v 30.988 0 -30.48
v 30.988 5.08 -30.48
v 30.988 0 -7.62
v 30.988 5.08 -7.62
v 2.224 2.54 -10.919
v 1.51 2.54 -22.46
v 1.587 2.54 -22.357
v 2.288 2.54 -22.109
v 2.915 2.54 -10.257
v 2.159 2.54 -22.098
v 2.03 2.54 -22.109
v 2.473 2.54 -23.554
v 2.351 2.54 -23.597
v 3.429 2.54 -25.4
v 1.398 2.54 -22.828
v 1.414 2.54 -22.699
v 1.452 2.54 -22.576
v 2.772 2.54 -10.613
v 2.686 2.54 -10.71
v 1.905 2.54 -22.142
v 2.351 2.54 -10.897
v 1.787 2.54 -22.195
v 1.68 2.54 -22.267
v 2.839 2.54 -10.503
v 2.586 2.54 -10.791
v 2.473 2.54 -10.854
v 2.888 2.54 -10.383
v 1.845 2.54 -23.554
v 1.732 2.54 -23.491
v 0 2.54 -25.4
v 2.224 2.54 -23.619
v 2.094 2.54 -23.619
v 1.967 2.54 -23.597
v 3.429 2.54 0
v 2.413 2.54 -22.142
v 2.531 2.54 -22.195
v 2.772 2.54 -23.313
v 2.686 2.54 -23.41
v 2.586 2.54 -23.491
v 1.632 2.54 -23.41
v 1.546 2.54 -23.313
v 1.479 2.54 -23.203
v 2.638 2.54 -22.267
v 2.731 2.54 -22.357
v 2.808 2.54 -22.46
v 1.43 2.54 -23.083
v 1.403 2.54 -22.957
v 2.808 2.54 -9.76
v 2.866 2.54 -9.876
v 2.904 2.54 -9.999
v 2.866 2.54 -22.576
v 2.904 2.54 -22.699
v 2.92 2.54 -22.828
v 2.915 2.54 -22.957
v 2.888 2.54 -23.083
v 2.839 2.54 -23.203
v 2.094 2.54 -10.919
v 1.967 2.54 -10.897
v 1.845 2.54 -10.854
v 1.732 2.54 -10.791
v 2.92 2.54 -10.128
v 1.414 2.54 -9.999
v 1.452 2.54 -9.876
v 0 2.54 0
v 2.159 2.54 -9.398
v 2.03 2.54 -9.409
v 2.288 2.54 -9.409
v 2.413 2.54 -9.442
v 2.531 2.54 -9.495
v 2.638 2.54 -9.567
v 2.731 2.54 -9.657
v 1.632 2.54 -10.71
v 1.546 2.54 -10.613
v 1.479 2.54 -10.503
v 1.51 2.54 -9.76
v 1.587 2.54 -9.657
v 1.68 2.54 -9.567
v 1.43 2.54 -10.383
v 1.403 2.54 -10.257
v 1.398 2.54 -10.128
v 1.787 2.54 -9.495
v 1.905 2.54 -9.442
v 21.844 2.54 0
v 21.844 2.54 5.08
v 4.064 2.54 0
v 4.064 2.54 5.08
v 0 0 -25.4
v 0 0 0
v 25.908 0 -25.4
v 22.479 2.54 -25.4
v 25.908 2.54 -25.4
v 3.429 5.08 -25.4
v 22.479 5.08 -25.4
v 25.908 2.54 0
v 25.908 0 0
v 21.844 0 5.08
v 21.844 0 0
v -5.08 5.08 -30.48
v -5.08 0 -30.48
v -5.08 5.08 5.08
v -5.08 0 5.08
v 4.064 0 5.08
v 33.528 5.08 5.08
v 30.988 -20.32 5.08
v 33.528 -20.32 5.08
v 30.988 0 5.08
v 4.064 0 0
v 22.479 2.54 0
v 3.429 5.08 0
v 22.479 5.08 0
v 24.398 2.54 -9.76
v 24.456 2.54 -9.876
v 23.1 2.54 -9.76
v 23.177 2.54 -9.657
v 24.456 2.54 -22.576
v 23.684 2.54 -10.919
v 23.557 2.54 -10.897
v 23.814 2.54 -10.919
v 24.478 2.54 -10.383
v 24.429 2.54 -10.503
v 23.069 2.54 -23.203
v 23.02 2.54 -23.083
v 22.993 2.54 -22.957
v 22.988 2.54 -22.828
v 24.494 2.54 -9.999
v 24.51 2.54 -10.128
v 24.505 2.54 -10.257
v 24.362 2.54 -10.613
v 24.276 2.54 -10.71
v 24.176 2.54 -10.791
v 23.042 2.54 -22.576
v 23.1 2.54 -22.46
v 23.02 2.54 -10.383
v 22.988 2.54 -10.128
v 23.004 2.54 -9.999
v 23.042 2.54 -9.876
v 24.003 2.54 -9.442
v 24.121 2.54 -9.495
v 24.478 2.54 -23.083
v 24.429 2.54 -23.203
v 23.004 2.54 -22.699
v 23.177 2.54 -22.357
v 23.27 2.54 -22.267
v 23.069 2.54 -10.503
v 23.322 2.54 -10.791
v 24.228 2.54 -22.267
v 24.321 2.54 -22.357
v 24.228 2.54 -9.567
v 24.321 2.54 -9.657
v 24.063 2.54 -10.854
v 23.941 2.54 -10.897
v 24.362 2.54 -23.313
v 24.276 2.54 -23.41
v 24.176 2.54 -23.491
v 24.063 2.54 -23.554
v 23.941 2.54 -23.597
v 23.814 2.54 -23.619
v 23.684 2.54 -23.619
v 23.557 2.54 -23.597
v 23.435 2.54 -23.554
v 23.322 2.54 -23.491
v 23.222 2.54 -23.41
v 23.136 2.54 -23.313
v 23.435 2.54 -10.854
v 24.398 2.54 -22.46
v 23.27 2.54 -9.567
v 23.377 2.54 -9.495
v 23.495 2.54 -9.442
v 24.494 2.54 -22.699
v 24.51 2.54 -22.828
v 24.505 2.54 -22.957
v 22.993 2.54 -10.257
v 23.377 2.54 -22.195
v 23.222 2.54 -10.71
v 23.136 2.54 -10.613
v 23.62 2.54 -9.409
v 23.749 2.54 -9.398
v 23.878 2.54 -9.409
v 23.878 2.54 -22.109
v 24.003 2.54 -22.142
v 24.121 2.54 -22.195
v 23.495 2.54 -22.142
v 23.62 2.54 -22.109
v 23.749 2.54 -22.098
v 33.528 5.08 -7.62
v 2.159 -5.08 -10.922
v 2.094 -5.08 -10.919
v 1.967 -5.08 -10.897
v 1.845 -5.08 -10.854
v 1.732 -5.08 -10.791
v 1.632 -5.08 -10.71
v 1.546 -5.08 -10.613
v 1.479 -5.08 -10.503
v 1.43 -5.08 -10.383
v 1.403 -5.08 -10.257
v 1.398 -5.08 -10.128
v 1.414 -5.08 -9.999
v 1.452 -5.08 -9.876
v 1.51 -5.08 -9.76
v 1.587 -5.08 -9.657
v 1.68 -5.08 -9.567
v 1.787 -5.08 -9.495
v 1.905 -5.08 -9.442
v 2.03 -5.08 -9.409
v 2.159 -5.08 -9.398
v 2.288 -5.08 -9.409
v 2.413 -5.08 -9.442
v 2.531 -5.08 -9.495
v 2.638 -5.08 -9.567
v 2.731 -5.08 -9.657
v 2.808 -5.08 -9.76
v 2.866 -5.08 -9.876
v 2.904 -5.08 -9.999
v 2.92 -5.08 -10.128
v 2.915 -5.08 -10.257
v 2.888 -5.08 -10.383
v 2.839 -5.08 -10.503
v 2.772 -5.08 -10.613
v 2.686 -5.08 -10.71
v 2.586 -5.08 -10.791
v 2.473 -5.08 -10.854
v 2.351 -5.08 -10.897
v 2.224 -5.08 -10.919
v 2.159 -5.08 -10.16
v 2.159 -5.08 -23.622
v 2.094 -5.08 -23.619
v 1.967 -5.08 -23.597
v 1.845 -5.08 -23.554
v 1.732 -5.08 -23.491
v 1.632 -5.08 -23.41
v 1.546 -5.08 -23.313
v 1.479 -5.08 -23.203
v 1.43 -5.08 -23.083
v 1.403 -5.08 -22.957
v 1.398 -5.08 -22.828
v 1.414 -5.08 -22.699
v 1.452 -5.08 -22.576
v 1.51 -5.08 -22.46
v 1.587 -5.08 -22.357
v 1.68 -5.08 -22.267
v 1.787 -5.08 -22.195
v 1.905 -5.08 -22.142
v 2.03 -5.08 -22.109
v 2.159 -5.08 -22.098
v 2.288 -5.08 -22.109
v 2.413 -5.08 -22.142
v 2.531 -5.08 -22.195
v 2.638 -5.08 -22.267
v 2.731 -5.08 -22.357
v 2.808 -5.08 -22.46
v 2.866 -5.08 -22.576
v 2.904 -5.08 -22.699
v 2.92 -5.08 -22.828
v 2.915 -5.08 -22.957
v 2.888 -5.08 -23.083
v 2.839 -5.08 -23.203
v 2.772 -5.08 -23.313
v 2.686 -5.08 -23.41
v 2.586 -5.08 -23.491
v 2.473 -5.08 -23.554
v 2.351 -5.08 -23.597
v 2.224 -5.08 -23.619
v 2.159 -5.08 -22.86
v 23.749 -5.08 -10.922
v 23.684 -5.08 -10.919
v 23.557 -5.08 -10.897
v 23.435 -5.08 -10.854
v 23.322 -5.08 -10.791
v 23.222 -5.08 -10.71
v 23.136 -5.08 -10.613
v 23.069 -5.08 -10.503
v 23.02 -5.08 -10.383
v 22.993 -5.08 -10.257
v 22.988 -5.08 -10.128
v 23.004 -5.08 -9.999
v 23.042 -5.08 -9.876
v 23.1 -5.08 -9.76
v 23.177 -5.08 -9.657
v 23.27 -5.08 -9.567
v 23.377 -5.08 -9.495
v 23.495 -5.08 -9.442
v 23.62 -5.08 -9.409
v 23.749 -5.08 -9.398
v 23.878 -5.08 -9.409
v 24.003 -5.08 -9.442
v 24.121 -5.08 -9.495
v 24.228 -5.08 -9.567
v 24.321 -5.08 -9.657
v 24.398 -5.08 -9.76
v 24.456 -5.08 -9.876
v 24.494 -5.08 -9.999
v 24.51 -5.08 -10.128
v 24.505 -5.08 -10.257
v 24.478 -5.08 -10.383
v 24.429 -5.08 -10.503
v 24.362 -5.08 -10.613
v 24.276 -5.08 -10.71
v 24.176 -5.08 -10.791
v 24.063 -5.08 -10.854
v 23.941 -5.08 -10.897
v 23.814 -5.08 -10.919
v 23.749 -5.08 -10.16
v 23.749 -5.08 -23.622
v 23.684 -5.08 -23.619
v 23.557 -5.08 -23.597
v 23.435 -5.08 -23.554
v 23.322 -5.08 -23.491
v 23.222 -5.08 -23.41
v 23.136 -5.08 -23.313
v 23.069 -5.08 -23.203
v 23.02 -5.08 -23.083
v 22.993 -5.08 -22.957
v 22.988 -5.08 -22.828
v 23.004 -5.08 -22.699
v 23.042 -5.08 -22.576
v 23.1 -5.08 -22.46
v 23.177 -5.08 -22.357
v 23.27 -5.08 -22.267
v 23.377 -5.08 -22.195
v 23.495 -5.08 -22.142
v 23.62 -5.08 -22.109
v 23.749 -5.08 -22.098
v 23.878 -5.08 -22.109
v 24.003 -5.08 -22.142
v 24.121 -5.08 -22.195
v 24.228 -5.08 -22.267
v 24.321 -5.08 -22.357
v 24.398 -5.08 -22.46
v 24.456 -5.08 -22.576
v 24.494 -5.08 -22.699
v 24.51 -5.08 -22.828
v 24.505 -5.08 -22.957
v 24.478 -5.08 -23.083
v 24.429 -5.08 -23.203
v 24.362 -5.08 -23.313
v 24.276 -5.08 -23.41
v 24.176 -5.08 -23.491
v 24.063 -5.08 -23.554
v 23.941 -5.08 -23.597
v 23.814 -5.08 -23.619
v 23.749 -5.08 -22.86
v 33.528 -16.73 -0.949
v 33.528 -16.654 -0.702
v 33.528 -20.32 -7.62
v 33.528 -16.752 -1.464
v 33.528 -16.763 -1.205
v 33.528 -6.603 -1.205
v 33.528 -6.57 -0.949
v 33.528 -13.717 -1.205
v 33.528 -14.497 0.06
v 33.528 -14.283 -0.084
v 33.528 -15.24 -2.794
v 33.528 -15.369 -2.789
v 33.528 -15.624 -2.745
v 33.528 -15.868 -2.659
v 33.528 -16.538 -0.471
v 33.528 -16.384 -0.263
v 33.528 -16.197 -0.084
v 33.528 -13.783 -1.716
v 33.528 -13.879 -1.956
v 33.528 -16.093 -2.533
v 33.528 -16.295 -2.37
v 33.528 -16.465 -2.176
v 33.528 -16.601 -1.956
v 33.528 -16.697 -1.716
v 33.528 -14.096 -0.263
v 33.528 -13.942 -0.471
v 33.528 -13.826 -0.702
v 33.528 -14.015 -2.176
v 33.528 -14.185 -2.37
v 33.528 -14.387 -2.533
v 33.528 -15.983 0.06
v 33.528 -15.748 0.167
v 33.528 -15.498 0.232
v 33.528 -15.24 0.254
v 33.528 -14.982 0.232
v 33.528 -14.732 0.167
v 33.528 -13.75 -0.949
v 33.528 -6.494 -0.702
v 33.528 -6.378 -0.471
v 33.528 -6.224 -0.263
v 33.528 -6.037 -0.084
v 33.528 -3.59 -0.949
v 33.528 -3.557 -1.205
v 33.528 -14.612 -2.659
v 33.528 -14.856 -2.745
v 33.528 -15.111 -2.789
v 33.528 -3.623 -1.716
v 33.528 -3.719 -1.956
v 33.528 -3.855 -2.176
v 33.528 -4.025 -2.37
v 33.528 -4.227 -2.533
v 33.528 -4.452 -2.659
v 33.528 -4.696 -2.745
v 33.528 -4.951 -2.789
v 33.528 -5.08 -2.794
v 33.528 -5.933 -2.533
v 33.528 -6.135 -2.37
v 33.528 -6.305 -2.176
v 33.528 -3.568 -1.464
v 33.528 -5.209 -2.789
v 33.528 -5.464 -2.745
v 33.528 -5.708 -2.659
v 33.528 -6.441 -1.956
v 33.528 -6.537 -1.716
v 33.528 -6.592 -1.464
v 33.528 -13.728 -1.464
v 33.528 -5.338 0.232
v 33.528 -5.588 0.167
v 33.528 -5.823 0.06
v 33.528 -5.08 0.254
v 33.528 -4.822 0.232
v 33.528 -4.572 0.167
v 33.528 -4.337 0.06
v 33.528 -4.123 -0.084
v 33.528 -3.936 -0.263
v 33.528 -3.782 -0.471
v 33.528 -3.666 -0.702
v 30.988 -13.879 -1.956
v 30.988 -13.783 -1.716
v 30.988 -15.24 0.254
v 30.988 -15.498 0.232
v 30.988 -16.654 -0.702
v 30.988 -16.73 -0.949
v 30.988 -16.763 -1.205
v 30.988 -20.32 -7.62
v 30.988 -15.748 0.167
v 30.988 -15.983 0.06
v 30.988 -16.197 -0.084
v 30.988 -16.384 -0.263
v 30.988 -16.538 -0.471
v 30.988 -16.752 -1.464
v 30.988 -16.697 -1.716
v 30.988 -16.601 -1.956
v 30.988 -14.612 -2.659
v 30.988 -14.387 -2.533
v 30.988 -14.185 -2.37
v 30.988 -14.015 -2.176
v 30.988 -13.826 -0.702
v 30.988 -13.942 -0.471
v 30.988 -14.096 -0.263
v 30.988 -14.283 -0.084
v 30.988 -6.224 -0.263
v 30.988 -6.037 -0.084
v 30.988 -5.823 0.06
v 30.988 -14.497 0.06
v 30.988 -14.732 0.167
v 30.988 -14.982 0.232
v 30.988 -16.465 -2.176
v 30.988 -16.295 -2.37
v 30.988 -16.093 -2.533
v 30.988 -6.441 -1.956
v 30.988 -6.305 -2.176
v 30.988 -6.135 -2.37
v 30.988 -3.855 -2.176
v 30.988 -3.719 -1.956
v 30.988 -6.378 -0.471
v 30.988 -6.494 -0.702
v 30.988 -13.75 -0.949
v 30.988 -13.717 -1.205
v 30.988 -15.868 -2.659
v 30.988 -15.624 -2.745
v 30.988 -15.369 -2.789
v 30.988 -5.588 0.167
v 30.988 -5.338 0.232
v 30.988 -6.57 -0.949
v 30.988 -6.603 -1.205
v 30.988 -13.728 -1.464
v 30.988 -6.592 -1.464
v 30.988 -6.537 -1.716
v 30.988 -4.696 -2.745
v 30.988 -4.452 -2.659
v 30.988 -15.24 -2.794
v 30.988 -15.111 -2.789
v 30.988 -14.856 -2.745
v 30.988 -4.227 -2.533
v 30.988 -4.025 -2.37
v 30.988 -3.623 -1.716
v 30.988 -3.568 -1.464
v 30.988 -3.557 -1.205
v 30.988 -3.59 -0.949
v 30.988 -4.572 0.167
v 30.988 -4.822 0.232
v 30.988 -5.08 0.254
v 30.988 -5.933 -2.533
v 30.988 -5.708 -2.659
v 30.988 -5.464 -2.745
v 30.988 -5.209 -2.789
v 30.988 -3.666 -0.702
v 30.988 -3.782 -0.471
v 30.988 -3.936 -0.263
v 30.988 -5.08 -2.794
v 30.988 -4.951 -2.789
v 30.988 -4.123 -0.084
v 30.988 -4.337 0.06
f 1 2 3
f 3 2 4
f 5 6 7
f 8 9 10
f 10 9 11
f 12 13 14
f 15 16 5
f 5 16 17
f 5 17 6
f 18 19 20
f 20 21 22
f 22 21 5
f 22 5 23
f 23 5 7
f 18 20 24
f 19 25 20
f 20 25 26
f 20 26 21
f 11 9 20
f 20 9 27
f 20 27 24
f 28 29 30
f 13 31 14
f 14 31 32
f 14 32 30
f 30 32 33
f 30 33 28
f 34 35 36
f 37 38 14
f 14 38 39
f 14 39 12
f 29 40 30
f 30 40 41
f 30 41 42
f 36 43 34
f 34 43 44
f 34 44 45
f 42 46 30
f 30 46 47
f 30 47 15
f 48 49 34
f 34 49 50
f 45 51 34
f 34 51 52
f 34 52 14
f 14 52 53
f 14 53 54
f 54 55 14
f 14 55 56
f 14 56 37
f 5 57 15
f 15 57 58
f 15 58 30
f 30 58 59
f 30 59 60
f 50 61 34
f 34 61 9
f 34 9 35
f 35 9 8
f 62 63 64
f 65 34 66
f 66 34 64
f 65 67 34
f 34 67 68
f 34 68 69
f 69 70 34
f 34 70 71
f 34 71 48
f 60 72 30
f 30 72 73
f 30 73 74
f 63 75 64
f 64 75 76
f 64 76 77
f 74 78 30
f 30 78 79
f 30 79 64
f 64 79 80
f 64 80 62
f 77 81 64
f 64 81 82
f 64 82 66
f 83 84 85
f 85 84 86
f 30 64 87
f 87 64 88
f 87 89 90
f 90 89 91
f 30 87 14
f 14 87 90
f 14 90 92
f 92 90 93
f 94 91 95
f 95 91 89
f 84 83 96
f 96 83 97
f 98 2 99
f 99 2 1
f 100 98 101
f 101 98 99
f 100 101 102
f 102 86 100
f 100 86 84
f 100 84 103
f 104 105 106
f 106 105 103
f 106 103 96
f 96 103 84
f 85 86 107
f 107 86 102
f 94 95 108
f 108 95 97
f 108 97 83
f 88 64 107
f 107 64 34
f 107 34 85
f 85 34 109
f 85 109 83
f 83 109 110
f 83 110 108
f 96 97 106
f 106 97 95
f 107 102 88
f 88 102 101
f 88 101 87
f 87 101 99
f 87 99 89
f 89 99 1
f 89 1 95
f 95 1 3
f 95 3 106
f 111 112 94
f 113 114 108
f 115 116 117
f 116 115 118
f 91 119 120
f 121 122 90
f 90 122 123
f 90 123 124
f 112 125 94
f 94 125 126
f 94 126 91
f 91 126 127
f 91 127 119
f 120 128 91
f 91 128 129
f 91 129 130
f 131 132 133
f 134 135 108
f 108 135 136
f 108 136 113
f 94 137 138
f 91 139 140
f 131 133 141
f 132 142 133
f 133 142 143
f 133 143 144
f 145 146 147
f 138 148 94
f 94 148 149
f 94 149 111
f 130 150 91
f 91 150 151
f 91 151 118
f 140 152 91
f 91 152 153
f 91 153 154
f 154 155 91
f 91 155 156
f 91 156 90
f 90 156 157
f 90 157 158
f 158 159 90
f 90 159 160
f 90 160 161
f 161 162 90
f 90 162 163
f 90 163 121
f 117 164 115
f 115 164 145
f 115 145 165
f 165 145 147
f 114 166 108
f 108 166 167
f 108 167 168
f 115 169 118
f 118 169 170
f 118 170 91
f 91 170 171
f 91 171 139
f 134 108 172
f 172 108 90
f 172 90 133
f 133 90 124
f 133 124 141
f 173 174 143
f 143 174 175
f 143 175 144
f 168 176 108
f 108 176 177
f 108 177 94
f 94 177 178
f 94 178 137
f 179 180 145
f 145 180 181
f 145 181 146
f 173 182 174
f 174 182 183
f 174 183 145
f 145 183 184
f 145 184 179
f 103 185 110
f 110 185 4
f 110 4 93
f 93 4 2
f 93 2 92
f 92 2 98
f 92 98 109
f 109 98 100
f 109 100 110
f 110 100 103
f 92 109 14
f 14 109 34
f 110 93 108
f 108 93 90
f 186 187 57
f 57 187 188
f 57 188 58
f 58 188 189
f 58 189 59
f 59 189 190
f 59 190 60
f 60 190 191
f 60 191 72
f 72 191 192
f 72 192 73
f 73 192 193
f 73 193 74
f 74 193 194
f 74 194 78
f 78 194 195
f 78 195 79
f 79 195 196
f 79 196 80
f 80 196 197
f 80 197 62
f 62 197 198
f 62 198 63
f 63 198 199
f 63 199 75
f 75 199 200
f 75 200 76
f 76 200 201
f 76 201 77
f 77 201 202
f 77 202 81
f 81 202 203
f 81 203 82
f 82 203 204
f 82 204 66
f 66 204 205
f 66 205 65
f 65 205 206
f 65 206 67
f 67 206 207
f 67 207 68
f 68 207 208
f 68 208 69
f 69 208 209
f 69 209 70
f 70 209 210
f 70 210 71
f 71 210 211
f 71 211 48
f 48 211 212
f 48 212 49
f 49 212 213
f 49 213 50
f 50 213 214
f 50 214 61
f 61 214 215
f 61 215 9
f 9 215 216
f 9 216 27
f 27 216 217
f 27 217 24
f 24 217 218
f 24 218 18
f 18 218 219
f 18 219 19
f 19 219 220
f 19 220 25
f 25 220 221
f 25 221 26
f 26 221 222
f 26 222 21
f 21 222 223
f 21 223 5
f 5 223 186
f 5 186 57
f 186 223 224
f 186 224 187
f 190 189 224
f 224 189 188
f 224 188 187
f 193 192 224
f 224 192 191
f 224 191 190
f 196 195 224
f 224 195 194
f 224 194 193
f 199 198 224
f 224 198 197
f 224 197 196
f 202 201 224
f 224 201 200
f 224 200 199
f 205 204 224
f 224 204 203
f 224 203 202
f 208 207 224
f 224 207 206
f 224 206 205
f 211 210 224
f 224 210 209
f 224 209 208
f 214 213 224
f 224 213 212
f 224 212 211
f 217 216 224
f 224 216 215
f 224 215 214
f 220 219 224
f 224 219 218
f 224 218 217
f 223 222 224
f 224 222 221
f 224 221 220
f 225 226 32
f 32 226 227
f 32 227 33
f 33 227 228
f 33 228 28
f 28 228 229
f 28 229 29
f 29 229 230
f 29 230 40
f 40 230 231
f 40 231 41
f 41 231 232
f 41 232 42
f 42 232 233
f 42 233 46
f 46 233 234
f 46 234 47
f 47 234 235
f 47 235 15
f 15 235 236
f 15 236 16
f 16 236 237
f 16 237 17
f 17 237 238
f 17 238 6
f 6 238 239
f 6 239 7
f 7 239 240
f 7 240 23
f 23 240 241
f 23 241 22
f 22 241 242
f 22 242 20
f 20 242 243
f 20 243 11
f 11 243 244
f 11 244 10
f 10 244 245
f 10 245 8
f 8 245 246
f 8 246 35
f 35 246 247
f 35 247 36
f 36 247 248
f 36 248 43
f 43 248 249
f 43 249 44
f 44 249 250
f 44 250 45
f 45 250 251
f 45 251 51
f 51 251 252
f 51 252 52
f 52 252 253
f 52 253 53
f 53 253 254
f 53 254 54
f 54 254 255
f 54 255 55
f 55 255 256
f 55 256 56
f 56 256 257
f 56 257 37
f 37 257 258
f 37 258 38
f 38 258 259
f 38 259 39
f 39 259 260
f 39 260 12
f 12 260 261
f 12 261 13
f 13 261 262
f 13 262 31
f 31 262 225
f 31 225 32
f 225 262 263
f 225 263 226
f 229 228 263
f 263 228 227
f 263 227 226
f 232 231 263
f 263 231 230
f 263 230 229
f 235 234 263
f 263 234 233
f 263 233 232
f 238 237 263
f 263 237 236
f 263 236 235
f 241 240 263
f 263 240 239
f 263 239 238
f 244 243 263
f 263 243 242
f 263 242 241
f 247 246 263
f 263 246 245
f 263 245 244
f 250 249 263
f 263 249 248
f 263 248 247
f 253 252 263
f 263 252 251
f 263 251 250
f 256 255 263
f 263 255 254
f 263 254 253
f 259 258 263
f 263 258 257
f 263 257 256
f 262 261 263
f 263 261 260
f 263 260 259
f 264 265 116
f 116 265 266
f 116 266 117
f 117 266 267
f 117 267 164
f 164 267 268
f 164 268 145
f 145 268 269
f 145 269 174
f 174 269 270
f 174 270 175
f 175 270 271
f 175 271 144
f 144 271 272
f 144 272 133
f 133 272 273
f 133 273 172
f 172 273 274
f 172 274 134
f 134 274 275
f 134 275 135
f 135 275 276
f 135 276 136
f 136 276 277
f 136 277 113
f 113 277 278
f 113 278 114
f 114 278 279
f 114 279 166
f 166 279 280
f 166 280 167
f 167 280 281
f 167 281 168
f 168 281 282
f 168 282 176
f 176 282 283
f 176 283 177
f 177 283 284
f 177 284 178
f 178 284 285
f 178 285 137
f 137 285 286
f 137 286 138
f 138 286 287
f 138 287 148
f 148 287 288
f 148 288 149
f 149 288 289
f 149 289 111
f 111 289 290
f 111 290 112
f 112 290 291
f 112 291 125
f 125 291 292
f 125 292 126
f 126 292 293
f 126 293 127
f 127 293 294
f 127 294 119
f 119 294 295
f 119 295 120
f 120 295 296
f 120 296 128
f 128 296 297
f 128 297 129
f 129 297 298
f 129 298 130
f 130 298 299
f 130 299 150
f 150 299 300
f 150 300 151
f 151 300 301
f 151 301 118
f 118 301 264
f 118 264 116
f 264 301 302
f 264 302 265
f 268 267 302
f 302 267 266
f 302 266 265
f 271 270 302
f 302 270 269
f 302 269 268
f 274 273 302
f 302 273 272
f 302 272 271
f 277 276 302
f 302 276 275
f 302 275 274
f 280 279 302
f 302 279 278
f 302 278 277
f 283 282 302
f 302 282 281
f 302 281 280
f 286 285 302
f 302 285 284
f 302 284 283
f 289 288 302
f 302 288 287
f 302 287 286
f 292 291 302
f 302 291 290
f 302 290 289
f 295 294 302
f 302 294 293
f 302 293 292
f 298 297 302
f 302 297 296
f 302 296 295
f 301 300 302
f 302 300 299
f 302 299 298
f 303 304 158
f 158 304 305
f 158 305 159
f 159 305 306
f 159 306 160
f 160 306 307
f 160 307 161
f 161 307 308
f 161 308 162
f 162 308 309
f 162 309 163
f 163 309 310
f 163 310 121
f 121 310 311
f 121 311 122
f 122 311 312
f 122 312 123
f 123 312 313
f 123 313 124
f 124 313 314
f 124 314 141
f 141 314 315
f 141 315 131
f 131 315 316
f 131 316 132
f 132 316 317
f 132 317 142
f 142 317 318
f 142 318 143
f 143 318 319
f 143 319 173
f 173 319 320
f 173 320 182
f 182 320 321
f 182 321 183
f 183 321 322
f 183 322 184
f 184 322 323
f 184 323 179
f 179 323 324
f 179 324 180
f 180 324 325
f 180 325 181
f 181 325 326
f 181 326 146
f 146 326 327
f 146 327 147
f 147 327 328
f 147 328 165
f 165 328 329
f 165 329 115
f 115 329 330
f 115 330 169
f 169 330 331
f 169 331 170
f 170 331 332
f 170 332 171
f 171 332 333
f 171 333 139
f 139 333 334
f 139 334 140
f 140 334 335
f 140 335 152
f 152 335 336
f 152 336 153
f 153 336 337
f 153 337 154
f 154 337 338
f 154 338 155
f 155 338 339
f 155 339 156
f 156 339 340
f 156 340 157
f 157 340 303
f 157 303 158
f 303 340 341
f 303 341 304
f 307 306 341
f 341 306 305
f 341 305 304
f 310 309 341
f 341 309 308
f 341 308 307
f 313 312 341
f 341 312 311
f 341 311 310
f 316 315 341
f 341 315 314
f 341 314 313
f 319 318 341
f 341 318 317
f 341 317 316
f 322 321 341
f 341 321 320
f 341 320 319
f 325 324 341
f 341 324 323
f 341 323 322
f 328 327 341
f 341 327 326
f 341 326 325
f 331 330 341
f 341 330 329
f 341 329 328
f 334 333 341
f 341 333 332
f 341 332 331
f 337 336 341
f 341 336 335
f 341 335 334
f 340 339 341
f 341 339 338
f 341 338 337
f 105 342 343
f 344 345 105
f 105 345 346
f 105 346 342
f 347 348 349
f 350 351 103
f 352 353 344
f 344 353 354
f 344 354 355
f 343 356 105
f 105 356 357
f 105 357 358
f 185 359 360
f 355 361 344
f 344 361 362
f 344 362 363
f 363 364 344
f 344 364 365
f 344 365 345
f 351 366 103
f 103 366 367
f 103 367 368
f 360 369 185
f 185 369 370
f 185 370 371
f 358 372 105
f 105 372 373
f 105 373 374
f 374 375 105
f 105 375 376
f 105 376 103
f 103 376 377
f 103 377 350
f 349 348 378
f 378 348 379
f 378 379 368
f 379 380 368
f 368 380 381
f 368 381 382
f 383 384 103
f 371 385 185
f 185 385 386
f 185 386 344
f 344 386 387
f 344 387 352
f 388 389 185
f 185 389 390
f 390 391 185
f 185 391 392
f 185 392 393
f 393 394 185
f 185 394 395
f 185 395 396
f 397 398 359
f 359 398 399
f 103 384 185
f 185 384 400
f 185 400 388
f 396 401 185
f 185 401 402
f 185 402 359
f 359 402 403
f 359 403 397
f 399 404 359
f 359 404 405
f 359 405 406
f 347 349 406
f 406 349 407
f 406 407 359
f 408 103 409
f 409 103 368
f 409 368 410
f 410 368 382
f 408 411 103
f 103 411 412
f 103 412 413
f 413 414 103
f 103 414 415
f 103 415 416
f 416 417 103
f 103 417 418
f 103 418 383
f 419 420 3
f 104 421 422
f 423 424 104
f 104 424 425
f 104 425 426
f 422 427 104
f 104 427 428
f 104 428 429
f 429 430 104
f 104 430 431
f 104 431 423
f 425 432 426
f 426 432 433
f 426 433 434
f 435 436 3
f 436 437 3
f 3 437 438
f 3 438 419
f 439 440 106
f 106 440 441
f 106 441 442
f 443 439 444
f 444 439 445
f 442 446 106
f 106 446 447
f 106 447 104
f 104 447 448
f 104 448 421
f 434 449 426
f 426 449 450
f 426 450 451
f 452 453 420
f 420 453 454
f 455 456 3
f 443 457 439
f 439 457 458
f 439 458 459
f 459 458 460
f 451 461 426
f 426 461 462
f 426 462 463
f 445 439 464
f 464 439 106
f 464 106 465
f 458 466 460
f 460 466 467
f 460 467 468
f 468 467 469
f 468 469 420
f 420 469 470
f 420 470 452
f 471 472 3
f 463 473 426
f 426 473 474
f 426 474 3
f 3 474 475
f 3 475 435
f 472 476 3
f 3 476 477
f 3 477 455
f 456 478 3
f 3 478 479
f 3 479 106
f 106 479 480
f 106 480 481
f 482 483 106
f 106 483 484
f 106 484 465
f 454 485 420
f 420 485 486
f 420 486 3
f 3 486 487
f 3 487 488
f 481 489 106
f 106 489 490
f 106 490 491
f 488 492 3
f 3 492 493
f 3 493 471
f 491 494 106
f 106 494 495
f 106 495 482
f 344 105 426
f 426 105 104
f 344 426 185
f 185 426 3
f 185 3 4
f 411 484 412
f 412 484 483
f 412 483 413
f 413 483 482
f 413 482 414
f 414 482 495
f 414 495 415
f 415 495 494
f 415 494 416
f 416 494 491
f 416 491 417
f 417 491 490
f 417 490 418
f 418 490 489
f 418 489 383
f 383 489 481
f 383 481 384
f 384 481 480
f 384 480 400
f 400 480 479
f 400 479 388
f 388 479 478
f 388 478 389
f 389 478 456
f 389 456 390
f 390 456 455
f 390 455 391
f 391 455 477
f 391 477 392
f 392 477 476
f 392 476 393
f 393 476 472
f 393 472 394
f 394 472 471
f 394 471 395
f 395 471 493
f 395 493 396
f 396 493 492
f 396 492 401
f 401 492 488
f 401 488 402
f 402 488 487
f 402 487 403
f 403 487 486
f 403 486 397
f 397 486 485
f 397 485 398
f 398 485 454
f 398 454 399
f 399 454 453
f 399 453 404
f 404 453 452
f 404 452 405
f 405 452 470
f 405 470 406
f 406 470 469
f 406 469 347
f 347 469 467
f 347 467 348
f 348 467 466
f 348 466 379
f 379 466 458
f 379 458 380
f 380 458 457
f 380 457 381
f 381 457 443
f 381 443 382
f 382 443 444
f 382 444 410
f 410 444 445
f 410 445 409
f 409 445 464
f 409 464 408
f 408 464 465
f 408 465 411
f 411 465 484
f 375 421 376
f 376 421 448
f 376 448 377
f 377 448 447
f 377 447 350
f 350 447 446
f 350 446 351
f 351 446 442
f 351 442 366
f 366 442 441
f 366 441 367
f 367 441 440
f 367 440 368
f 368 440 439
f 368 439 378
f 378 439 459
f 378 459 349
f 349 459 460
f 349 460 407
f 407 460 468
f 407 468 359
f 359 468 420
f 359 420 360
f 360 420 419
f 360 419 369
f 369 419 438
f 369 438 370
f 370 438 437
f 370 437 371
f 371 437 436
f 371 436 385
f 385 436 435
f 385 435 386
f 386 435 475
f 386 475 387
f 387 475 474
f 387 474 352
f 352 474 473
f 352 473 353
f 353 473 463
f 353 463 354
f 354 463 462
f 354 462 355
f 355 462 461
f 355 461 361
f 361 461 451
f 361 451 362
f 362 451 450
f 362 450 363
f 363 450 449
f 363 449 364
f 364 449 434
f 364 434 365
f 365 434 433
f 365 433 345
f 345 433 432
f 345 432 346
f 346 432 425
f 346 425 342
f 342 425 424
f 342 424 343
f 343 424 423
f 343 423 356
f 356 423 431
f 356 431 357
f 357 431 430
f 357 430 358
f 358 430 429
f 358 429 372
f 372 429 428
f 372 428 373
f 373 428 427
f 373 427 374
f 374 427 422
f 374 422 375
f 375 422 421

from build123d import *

# Parameters (mm, degrees)
BOSS_EXTRUDE1_DEPTH = 2.54
SKETCH4_W           = 36.068
SKETCH4_H           = 35.56
BOSS_EXTRUDE2_DEPTH = 2.54
SKETCH5_W           = 19.05
SKETCH5_H           = 25.4
CUT_EXTRUDE1_DEPTH  = 44.540075149
SKETCH7_R           = 0.762
BOSS_EXTRUDE3_DEPTH = 7.62
SKETCH9_W           = 12.7
SKETCH9_H           = 25.4
SKETCH9_R           = 1.524
BOSS_EXTRUDE4_DEPTH = 2.54


with BuildPart() as part:
    # Sketch1 → Boss-Extrude1 (new body)
    with BuildSketch(Plane(origin=(0, 0, 0), x_dir=(1, 0, 0), z_dir=(0, 1, 0))):
        Polygon((-5.08, 30.48), (30.988, 30.48), (30.988, -5.08), (21.844, -5.08), (21.844, 0), (25.908, 0), (25.908, 25.4), (0, 25.4), (0, 0), (4.064, 0), (4.064, -5.08), (-5.08, -5.08), align=None)
    extrude(amount=BOSS_EXTRUDE1_DEPTH)

    # Sketch4 → Boss-Extrude2 (add)
    with BuildSketch(Plane(origin=(0, 2.54, 0), x_dir=(1, 0, 0), z_dir=(0, 1, 0))):
        with Locations((12.954, 12.7)):
            Rectangle(SKETCH4_W, SKETCH4_H)
    extrude(amount=BOSS_EXTRUDE2_DEPTH)

    # Sketch5 → Cut-Extrude1 (cut, through all)
    with BuildSketch(Plane.XZ.offset(-2.54)):
        with Locations((12.954, -12.7)):
            Rectangle(SKETCH5_W, SKETCH5_H)
    extrude(amount=-CUT_EXTRUDE1_DEPTH, mode=Mode.SUBTRACT)

    # Sketch7 → Boss-Extrude3 (add)
    with BuildSketch(Plane.XZ.offset(-2.54)):
        with Locations(Location((2.159, -10.16, 0), (0, 0, 90))):
            Circle(SKETCH7_R)
        with Locations(Location((2.159, -22.86, 0), (0, 0, 90))):
            Circle(SKETCH7_R)
        with Locations(Location((23.749, -10.16, 0), (0, 0, 90))):
            Circle(SKETCH7_R)
        with Locations(Location((23.749, -22.86, 0), (0, 0, 90))):
            Circle(SKETCH7_R)
    extrude(amount=BOSS_EXTRUDE3_DEPTH)

    # Sketch9 → Boss-Extrude4 (add)
    with BuildSketch(Plane(origin=(30.988, 0, 0), x_dir=(0, 0, -1), z_dir=(1, 0, 0))):
        with Locations((1.27, -7.62)):
            Rectangle(SKETCH9_W, SKETCH9_H)
        with Locations((1.27, -5.08)):
            Circle(SKETCH9_R, mode=Mode.SUBTRACT)
        with Locations((1.27, -15.24)):
            Circle(SKETCH9_R, mode=Mode.SUBTRACT)
    extrude(amount=BOSS_EXTRUDE4_DEPTH)


solid = part.part
